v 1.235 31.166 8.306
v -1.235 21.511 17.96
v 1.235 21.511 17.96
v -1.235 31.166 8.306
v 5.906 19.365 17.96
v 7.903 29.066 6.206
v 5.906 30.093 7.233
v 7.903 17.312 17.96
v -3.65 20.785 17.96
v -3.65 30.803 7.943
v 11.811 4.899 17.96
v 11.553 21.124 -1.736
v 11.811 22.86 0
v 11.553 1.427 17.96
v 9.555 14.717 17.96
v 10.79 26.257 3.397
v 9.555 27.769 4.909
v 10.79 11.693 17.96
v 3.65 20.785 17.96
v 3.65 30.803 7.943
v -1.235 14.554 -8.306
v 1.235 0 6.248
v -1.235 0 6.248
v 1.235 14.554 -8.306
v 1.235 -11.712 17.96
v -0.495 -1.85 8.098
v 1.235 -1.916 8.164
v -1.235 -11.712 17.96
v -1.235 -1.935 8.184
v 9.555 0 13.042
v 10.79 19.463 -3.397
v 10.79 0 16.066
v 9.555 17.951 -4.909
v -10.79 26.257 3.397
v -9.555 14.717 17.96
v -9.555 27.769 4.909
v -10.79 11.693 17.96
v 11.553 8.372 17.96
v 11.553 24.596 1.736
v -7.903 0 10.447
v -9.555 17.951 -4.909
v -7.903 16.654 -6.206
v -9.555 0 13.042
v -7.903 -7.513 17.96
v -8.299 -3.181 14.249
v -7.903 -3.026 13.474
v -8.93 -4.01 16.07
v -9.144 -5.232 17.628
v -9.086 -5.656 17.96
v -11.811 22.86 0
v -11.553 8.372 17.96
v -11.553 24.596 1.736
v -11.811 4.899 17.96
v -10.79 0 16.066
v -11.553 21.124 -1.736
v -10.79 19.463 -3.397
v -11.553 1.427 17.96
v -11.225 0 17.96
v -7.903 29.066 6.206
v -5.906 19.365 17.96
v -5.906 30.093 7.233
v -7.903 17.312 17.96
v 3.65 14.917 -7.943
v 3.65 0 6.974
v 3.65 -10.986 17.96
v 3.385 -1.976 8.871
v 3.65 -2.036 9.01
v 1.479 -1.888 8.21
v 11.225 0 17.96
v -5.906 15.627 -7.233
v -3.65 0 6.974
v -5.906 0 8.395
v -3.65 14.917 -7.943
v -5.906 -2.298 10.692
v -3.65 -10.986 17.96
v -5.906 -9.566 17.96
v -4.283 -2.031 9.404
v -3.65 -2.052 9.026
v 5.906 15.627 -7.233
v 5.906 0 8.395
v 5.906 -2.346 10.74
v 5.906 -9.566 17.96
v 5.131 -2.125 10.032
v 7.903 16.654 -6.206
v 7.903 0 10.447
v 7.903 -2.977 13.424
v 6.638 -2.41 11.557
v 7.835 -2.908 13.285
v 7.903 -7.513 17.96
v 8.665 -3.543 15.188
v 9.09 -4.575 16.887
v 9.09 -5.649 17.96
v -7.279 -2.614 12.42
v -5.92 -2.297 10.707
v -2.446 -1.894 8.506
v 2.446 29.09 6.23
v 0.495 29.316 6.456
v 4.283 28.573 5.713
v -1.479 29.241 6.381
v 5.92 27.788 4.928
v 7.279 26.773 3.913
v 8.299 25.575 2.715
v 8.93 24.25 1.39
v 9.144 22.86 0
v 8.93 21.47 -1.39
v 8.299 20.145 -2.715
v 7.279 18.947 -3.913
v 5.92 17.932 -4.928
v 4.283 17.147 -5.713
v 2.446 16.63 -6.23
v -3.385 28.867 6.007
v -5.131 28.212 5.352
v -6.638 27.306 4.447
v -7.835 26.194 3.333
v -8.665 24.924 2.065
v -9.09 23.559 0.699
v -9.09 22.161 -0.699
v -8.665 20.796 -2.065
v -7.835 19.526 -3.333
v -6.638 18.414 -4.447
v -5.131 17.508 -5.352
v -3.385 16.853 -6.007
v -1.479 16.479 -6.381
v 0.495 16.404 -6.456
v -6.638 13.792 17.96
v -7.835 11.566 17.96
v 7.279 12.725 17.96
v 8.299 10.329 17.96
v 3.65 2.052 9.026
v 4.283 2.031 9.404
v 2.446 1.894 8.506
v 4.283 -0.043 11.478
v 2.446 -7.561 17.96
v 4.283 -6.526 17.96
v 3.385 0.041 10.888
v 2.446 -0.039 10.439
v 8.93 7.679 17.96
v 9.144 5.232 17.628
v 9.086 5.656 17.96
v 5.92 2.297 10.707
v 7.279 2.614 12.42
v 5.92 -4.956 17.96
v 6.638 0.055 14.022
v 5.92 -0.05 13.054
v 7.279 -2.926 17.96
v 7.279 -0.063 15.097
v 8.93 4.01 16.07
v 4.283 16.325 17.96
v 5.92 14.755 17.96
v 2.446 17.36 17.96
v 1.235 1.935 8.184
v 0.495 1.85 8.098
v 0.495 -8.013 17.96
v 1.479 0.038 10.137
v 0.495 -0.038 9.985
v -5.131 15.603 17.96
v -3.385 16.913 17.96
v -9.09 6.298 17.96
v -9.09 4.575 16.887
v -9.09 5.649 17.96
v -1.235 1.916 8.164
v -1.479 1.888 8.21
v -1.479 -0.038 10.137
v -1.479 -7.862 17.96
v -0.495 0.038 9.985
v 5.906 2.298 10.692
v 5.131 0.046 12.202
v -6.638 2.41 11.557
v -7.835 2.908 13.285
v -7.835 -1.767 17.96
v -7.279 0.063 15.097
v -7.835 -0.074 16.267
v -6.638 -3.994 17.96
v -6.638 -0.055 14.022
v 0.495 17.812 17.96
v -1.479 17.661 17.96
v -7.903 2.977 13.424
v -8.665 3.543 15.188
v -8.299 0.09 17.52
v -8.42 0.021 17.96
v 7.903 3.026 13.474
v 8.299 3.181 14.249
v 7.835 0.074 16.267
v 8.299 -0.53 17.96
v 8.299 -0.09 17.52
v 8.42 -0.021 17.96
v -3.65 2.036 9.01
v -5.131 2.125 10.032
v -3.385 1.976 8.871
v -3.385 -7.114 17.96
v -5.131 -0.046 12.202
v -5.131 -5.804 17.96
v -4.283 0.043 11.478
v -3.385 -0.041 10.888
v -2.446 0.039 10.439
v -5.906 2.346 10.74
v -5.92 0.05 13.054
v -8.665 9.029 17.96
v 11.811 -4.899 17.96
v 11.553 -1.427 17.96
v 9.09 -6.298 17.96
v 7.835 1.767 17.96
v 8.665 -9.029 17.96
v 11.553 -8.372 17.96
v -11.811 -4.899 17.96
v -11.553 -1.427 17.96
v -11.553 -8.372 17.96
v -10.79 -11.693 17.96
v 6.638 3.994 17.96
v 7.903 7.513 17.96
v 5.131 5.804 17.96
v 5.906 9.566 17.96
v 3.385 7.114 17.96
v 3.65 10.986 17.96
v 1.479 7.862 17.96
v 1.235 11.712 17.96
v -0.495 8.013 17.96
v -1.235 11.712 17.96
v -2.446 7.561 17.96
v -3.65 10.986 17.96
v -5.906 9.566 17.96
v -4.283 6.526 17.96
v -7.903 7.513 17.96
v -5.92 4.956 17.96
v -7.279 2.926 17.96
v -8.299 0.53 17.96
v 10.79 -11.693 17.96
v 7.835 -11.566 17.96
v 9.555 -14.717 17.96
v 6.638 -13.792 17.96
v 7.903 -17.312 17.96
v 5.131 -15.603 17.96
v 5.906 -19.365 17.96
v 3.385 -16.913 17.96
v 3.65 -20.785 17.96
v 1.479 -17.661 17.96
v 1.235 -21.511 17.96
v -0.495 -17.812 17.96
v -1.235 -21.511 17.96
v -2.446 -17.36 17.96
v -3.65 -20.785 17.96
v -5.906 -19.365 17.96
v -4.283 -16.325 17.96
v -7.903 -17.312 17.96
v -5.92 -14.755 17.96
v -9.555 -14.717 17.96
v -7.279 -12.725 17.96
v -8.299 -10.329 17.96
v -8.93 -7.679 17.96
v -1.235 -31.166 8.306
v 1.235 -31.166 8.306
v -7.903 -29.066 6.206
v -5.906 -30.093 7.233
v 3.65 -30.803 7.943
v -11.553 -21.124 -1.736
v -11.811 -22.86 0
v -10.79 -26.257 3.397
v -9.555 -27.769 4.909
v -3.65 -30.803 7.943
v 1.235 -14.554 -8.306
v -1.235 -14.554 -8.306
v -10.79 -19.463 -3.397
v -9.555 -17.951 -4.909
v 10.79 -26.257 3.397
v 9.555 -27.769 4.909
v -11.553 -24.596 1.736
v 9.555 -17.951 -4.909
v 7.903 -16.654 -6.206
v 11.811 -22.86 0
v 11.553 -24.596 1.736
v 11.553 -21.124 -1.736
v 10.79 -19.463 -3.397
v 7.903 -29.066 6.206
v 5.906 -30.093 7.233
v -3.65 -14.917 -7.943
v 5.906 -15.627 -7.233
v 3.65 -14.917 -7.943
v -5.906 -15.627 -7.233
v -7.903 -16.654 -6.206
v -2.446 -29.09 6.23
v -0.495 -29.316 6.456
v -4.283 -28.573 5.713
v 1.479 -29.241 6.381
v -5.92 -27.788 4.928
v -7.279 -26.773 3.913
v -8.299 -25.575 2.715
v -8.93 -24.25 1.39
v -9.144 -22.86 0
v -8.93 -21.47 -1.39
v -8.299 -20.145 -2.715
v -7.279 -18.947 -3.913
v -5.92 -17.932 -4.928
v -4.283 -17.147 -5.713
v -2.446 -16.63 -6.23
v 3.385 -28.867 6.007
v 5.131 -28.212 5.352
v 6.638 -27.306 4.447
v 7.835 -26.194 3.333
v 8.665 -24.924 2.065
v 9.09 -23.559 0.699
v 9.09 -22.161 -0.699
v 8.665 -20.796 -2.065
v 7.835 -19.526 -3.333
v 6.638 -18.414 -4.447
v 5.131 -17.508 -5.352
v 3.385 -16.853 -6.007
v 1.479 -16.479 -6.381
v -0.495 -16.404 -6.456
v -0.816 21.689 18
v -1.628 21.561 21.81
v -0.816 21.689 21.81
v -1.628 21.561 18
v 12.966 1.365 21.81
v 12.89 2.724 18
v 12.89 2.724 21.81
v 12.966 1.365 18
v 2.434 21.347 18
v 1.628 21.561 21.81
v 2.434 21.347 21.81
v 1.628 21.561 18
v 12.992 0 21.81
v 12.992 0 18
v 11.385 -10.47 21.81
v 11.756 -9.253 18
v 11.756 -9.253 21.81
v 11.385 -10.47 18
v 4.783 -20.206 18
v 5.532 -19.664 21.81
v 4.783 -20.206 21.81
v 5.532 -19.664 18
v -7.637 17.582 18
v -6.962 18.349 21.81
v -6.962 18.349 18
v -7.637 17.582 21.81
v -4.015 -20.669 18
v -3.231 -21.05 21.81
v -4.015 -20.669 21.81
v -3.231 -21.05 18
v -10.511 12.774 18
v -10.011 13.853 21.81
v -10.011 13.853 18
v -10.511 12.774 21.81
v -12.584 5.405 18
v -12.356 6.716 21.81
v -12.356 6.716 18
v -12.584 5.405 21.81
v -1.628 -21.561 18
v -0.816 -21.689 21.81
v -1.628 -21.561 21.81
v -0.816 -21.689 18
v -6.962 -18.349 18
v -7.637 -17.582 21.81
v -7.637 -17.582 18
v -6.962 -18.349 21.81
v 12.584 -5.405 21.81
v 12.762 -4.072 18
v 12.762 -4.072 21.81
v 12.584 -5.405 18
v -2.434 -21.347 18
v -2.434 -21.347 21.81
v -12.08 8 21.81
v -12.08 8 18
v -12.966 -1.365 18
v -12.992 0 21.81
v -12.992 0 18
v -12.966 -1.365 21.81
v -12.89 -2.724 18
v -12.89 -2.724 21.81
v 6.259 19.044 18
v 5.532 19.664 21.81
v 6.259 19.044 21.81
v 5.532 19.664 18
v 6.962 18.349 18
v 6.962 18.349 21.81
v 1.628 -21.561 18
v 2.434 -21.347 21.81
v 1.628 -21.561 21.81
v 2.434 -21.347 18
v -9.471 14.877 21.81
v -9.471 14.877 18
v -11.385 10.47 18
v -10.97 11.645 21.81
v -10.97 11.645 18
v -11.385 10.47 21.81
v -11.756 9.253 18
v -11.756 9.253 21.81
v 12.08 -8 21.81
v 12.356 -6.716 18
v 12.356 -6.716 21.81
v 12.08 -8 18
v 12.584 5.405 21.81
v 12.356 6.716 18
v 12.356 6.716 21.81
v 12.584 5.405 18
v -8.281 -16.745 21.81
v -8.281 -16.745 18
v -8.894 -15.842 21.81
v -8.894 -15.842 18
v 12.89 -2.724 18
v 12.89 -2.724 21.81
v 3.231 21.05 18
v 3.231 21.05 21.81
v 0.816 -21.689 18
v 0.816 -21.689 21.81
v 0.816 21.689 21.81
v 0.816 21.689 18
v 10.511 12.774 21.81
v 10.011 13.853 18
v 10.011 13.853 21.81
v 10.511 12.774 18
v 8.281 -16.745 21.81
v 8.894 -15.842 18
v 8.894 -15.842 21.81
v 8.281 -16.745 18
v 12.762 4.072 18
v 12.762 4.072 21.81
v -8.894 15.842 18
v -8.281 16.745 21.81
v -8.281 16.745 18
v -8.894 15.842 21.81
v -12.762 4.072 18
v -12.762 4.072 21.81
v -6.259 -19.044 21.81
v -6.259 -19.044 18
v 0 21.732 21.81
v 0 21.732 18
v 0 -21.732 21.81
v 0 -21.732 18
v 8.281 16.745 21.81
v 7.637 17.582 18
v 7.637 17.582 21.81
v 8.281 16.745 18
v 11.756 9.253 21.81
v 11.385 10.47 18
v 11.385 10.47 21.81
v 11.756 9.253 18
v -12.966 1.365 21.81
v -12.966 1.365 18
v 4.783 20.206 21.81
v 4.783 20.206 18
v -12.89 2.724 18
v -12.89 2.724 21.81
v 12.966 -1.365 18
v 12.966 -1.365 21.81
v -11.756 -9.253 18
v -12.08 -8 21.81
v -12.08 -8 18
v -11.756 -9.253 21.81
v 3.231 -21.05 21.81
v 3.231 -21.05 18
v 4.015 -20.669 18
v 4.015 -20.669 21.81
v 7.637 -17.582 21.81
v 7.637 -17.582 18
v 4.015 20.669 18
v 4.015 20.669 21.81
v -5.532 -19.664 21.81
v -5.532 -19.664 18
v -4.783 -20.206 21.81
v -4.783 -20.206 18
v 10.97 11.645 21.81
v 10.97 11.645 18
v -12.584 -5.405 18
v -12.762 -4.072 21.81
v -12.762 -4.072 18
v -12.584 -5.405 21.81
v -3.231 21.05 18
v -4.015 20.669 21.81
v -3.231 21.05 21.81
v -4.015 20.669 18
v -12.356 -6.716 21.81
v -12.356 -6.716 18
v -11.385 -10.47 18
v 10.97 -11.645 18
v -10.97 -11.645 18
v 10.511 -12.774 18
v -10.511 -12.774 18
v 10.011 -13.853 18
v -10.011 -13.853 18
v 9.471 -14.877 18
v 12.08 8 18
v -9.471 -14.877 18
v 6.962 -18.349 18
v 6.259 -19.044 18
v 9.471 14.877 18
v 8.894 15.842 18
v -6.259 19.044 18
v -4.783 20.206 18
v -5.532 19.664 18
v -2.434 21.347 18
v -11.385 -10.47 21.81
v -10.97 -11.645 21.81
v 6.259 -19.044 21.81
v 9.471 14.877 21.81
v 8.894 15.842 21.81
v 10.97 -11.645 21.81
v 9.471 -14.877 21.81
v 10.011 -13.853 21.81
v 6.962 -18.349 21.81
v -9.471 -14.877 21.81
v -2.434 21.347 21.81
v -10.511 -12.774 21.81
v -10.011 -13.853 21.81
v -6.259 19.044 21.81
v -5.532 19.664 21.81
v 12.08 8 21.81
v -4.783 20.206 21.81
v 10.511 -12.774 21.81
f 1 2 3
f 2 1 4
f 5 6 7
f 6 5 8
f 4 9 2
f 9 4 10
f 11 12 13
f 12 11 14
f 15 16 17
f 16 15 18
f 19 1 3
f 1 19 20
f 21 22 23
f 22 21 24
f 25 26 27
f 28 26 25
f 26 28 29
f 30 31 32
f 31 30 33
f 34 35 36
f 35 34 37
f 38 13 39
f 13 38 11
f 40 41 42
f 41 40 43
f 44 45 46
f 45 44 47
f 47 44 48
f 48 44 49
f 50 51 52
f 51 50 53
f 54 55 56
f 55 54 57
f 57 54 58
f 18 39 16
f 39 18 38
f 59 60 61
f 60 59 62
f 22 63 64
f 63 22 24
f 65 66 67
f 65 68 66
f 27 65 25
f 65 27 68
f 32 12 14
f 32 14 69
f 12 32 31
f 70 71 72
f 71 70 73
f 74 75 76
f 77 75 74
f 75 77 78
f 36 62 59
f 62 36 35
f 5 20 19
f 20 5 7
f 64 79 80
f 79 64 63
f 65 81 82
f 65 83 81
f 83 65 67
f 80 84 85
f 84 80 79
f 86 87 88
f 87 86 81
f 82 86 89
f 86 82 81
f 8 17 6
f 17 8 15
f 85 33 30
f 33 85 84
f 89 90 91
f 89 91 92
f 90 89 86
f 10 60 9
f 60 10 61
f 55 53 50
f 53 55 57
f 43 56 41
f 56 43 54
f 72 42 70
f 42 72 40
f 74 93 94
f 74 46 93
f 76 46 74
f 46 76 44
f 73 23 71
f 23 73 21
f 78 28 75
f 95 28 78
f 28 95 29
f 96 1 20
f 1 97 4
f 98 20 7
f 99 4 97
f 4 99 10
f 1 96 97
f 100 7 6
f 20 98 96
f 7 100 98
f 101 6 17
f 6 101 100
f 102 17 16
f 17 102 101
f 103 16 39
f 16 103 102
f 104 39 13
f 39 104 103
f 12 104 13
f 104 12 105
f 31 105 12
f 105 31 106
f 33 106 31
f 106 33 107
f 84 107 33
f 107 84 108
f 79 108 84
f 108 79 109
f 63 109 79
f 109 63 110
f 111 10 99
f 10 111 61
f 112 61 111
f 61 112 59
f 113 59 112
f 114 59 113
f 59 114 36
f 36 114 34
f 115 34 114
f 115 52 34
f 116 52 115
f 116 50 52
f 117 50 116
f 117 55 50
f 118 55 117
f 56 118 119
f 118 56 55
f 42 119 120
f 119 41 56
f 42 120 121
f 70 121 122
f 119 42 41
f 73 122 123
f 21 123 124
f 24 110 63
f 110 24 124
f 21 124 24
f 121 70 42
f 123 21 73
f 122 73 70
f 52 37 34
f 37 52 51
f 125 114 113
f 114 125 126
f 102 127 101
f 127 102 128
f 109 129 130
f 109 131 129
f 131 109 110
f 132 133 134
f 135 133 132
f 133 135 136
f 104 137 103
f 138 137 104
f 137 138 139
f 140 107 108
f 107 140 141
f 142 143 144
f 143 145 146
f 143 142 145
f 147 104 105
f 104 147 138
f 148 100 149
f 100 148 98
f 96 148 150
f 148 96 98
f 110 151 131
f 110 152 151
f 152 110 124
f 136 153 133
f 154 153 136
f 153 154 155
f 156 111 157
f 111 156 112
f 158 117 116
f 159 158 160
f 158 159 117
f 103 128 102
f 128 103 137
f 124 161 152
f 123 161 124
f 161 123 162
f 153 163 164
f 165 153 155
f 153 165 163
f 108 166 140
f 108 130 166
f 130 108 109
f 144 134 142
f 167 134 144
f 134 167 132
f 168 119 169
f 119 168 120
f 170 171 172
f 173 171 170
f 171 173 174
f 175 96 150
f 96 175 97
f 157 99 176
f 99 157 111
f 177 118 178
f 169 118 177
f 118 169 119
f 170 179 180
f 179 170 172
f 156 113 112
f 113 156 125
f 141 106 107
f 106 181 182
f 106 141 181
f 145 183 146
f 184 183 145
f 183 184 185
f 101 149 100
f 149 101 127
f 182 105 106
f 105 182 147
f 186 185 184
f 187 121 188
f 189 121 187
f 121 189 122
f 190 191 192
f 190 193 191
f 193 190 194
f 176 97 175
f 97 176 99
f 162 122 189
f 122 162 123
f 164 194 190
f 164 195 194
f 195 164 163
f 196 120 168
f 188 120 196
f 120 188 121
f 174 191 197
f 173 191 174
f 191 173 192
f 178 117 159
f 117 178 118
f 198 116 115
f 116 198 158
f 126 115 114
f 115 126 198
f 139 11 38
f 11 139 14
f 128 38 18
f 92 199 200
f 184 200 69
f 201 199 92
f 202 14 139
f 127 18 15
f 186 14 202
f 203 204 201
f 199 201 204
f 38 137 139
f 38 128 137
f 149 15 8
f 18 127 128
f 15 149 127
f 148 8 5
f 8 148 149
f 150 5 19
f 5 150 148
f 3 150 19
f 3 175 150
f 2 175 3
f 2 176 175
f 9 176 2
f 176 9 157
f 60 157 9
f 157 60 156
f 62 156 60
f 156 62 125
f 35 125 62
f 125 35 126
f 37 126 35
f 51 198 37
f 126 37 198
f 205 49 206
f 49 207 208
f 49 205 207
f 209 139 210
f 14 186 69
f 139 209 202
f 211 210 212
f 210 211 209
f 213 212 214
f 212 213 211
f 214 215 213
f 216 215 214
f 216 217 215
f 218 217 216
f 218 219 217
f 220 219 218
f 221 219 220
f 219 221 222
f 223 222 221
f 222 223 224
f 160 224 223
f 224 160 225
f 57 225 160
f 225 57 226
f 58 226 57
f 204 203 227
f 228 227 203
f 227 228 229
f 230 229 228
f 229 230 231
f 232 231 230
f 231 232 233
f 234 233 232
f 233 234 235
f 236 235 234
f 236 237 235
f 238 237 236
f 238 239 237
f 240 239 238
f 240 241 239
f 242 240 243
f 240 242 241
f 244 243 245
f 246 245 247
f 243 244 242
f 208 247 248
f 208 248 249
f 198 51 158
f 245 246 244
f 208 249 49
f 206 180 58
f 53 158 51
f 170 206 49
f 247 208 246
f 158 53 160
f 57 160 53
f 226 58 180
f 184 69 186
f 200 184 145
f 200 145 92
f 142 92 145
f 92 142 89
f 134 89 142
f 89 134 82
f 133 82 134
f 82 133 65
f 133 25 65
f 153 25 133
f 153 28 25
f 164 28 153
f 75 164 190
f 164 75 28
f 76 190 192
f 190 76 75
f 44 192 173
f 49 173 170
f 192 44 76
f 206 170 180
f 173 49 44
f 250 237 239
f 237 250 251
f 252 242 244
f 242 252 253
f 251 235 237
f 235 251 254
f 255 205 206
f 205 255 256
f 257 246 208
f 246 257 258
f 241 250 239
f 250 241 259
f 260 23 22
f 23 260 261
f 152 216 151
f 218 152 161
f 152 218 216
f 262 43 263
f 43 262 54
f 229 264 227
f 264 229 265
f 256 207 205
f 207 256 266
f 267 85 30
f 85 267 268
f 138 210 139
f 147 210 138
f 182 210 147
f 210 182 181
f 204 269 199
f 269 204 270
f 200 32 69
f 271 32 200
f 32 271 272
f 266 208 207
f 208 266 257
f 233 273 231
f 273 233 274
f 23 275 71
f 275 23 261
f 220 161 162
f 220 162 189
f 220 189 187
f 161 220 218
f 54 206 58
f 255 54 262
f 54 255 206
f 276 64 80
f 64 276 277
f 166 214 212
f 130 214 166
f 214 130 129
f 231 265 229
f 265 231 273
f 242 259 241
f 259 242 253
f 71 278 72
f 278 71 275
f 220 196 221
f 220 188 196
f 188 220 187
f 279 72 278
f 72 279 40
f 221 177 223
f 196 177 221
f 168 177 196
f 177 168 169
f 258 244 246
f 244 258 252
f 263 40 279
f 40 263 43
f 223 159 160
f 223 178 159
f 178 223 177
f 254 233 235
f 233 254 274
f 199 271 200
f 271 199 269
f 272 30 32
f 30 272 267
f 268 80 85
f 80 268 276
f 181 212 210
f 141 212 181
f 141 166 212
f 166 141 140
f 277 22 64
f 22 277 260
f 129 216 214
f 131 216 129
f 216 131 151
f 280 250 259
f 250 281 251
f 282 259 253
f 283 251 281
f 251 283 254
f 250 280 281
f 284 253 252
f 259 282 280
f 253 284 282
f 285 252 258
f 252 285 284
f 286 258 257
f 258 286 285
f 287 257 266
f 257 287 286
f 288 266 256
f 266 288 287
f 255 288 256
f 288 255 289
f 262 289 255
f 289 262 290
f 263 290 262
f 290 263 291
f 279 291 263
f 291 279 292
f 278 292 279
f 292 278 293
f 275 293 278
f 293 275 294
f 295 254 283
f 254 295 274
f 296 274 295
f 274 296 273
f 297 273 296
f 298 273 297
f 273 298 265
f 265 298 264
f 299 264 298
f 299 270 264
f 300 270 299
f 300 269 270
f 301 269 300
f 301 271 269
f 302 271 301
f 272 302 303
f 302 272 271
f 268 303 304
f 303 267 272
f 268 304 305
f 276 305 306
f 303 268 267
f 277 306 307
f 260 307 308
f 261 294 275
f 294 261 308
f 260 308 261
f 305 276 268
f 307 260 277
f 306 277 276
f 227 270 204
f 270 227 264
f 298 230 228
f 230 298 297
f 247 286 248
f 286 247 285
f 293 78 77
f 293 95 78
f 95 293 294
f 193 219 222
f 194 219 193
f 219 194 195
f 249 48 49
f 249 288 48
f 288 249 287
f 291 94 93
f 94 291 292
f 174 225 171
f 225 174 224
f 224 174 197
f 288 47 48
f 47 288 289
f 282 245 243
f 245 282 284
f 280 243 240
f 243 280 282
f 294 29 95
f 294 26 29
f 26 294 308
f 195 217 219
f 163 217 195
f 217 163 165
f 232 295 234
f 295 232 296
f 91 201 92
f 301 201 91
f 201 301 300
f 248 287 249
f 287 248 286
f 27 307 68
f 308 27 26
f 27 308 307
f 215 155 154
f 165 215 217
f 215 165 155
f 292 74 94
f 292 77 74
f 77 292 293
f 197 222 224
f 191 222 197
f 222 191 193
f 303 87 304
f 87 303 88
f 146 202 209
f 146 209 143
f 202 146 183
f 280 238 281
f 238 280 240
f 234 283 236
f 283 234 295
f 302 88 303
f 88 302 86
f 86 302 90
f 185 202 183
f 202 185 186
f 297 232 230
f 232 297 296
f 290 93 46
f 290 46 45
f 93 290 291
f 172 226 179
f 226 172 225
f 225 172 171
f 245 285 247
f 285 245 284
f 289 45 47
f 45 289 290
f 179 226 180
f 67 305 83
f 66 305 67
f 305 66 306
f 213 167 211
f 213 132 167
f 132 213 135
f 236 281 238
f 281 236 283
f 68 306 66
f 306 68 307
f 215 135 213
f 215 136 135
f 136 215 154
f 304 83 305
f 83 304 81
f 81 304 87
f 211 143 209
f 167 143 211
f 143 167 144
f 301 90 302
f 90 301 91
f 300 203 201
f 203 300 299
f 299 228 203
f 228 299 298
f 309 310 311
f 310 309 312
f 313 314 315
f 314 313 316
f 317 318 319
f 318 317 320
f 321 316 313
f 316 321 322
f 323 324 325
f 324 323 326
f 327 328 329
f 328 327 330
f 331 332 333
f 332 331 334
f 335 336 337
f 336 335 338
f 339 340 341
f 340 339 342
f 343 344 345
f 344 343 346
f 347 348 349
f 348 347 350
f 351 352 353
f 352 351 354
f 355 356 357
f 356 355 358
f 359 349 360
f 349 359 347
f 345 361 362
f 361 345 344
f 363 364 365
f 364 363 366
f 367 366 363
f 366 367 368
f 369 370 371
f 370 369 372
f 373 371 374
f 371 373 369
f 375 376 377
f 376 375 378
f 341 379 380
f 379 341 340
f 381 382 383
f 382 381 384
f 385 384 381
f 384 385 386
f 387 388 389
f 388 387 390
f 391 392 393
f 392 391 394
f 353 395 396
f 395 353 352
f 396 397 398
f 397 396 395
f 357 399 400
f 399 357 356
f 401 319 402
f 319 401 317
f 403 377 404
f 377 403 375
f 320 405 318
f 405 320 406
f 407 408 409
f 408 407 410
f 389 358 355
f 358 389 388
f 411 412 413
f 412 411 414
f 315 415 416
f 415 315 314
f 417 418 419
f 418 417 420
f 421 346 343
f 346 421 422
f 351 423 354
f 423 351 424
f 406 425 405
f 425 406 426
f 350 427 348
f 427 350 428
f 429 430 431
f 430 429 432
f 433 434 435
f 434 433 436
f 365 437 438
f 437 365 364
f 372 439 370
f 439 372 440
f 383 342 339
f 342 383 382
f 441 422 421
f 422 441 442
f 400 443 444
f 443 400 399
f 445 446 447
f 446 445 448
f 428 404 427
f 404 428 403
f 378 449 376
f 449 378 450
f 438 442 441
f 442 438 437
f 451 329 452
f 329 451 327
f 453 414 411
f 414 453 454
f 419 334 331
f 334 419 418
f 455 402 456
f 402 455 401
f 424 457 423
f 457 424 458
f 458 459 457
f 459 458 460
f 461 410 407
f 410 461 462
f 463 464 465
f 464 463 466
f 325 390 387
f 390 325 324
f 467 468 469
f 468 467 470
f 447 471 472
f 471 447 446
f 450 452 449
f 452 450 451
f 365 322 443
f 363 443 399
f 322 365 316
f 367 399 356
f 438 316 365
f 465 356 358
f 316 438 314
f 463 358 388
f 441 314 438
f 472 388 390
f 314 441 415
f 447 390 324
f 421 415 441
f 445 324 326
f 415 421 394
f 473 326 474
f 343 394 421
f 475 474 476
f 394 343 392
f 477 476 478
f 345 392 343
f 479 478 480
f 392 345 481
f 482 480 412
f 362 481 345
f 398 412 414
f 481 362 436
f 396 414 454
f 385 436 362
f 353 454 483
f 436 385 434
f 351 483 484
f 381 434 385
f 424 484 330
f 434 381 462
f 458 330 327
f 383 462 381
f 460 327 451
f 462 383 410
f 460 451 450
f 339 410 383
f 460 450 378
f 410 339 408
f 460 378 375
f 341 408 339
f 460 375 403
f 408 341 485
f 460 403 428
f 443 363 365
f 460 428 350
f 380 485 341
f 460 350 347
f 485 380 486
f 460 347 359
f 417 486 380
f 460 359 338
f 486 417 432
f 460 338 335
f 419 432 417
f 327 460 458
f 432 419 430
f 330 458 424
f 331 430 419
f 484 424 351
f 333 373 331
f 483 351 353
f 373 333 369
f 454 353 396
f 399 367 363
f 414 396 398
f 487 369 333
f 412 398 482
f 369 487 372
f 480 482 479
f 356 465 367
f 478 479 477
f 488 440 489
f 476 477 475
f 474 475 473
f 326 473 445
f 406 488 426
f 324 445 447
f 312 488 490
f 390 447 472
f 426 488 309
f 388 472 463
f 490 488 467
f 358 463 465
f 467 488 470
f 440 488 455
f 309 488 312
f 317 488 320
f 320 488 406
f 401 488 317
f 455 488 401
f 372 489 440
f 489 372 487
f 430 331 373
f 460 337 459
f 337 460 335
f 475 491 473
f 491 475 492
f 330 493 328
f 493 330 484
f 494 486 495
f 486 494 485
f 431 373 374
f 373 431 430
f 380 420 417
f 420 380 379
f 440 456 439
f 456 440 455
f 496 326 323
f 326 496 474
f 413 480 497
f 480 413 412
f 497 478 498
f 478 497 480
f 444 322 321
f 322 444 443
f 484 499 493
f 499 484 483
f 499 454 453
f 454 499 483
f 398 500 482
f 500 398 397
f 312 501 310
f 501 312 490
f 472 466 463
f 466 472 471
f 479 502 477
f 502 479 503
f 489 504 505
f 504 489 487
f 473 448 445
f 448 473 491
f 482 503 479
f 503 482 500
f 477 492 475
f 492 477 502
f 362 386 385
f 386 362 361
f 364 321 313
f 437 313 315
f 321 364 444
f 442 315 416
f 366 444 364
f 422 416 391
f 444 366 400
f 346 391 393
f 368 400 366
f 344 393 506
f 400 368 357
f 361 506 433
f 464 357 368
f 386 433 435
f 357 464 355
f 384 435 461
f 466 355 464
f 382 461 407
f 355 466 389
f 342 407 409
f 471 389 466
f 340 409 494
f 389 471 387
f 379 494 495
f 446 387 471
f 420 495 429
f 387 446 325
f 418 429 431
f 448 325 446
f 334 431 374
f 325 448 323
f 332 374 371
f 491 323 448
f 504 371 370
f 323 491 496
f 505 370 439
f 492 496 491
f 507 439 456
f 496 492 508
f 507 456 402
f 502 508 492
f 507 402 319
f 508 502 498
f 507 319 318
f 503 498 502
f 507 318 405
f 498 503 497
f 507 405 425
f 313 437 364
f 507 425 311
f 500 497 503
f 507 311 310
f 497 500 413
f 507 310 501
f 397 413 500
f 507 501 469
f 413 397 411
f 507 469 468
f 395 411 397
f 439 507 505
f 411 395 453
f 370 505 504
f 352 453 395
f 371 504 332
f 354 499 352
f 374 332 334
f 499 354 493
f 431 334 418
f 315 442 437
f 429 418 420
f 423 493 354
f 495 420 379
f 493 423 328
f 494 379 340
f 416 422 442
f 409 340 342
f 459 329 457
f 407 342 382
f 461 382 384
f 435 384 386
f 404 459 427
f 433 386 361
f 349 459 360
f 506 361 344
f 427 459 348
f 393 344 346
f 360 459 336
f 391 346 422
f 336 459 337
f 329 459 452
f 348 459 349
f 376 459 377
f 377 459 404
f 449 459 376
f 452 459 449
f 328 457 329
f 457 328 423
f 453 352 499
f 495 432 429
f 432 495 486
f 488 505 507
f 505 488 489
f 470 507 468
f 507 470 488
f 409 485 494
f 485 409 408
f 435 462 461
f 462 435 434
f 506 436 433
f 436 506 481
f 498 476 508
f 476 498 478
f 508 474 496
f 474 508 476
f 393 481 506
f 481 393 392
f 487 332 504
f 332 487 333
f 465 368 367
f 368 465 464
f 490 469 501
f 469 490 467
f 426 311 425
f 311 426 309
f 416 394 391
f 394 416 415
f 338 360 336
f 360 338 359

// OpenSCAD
// https://www.menards.com/main/electrical/conduit-conduit-fittings-raceways/conduit-fittings/sigma-proconnex-trade-conduit-to-conduit-pull-elbow/46077m/p-1500273177717-c-9538.htm?tid=1594404088676465066&ipos=7

// Variables

inch = 25.4;
id = 0.72;
od = 0.93;
/* colors https://en.wikibooks.org/wiki/OpenSCAD_User_Manual/The_OpenSCAD_Language#color

cuts "Red"
metal "

 Libraries https://www.openscad.org/libraries.html
*/

// Base Parts
module outsideCylinder() {
    color("Gainsboro") cylinder(inch*1.5,inch/2*od,inch/2*od);
}

// Cuts
module centerCut() {
    translate([0,0,inch*-0.25]) {
        color("Red") cylinder(inch*3,inch/2*id,inch/2*id);
    }
}

// create halfinchPipe
module halfinchPipe() {
    difference() {
        outsideCylinder();
        union() {
            centerCut();
        }
        }
}

// Cut halfinchPipe
module cuthalfinchPipe() {
    translate([0,0,inch])
    rotate(-45,[1,0,0])
    translate([-inch, -inch, 0])
    linear_extrude(height = inch, center = false, convexity = 0, twist = 0, $fn = 0)
    color("Red") square([inch*2,inch*2]);
}

// singleArm
module singleArm() {
    difference() {
        halfinchPipe();
        union() {
            cuthalfinchPipe();
        }
    }
}


module elbowBottom() {
    translate([0,inch*.9,0])
    rotate(45,[1,0,0])
    singleArm();

    translate([0,-inch*.9,0])
    rotate(45,[1,0,0])
    rotate(180,[0,1,1])
    singleArm();
}

elbowBottom();

translate([0,0,18])
color("Gainsboro")
scale([.55,.92])
linear_extrude(height = inch*.15, center = false, convexity = 0, twist = 0, $fn = 100)
circle(r=inch*od);
